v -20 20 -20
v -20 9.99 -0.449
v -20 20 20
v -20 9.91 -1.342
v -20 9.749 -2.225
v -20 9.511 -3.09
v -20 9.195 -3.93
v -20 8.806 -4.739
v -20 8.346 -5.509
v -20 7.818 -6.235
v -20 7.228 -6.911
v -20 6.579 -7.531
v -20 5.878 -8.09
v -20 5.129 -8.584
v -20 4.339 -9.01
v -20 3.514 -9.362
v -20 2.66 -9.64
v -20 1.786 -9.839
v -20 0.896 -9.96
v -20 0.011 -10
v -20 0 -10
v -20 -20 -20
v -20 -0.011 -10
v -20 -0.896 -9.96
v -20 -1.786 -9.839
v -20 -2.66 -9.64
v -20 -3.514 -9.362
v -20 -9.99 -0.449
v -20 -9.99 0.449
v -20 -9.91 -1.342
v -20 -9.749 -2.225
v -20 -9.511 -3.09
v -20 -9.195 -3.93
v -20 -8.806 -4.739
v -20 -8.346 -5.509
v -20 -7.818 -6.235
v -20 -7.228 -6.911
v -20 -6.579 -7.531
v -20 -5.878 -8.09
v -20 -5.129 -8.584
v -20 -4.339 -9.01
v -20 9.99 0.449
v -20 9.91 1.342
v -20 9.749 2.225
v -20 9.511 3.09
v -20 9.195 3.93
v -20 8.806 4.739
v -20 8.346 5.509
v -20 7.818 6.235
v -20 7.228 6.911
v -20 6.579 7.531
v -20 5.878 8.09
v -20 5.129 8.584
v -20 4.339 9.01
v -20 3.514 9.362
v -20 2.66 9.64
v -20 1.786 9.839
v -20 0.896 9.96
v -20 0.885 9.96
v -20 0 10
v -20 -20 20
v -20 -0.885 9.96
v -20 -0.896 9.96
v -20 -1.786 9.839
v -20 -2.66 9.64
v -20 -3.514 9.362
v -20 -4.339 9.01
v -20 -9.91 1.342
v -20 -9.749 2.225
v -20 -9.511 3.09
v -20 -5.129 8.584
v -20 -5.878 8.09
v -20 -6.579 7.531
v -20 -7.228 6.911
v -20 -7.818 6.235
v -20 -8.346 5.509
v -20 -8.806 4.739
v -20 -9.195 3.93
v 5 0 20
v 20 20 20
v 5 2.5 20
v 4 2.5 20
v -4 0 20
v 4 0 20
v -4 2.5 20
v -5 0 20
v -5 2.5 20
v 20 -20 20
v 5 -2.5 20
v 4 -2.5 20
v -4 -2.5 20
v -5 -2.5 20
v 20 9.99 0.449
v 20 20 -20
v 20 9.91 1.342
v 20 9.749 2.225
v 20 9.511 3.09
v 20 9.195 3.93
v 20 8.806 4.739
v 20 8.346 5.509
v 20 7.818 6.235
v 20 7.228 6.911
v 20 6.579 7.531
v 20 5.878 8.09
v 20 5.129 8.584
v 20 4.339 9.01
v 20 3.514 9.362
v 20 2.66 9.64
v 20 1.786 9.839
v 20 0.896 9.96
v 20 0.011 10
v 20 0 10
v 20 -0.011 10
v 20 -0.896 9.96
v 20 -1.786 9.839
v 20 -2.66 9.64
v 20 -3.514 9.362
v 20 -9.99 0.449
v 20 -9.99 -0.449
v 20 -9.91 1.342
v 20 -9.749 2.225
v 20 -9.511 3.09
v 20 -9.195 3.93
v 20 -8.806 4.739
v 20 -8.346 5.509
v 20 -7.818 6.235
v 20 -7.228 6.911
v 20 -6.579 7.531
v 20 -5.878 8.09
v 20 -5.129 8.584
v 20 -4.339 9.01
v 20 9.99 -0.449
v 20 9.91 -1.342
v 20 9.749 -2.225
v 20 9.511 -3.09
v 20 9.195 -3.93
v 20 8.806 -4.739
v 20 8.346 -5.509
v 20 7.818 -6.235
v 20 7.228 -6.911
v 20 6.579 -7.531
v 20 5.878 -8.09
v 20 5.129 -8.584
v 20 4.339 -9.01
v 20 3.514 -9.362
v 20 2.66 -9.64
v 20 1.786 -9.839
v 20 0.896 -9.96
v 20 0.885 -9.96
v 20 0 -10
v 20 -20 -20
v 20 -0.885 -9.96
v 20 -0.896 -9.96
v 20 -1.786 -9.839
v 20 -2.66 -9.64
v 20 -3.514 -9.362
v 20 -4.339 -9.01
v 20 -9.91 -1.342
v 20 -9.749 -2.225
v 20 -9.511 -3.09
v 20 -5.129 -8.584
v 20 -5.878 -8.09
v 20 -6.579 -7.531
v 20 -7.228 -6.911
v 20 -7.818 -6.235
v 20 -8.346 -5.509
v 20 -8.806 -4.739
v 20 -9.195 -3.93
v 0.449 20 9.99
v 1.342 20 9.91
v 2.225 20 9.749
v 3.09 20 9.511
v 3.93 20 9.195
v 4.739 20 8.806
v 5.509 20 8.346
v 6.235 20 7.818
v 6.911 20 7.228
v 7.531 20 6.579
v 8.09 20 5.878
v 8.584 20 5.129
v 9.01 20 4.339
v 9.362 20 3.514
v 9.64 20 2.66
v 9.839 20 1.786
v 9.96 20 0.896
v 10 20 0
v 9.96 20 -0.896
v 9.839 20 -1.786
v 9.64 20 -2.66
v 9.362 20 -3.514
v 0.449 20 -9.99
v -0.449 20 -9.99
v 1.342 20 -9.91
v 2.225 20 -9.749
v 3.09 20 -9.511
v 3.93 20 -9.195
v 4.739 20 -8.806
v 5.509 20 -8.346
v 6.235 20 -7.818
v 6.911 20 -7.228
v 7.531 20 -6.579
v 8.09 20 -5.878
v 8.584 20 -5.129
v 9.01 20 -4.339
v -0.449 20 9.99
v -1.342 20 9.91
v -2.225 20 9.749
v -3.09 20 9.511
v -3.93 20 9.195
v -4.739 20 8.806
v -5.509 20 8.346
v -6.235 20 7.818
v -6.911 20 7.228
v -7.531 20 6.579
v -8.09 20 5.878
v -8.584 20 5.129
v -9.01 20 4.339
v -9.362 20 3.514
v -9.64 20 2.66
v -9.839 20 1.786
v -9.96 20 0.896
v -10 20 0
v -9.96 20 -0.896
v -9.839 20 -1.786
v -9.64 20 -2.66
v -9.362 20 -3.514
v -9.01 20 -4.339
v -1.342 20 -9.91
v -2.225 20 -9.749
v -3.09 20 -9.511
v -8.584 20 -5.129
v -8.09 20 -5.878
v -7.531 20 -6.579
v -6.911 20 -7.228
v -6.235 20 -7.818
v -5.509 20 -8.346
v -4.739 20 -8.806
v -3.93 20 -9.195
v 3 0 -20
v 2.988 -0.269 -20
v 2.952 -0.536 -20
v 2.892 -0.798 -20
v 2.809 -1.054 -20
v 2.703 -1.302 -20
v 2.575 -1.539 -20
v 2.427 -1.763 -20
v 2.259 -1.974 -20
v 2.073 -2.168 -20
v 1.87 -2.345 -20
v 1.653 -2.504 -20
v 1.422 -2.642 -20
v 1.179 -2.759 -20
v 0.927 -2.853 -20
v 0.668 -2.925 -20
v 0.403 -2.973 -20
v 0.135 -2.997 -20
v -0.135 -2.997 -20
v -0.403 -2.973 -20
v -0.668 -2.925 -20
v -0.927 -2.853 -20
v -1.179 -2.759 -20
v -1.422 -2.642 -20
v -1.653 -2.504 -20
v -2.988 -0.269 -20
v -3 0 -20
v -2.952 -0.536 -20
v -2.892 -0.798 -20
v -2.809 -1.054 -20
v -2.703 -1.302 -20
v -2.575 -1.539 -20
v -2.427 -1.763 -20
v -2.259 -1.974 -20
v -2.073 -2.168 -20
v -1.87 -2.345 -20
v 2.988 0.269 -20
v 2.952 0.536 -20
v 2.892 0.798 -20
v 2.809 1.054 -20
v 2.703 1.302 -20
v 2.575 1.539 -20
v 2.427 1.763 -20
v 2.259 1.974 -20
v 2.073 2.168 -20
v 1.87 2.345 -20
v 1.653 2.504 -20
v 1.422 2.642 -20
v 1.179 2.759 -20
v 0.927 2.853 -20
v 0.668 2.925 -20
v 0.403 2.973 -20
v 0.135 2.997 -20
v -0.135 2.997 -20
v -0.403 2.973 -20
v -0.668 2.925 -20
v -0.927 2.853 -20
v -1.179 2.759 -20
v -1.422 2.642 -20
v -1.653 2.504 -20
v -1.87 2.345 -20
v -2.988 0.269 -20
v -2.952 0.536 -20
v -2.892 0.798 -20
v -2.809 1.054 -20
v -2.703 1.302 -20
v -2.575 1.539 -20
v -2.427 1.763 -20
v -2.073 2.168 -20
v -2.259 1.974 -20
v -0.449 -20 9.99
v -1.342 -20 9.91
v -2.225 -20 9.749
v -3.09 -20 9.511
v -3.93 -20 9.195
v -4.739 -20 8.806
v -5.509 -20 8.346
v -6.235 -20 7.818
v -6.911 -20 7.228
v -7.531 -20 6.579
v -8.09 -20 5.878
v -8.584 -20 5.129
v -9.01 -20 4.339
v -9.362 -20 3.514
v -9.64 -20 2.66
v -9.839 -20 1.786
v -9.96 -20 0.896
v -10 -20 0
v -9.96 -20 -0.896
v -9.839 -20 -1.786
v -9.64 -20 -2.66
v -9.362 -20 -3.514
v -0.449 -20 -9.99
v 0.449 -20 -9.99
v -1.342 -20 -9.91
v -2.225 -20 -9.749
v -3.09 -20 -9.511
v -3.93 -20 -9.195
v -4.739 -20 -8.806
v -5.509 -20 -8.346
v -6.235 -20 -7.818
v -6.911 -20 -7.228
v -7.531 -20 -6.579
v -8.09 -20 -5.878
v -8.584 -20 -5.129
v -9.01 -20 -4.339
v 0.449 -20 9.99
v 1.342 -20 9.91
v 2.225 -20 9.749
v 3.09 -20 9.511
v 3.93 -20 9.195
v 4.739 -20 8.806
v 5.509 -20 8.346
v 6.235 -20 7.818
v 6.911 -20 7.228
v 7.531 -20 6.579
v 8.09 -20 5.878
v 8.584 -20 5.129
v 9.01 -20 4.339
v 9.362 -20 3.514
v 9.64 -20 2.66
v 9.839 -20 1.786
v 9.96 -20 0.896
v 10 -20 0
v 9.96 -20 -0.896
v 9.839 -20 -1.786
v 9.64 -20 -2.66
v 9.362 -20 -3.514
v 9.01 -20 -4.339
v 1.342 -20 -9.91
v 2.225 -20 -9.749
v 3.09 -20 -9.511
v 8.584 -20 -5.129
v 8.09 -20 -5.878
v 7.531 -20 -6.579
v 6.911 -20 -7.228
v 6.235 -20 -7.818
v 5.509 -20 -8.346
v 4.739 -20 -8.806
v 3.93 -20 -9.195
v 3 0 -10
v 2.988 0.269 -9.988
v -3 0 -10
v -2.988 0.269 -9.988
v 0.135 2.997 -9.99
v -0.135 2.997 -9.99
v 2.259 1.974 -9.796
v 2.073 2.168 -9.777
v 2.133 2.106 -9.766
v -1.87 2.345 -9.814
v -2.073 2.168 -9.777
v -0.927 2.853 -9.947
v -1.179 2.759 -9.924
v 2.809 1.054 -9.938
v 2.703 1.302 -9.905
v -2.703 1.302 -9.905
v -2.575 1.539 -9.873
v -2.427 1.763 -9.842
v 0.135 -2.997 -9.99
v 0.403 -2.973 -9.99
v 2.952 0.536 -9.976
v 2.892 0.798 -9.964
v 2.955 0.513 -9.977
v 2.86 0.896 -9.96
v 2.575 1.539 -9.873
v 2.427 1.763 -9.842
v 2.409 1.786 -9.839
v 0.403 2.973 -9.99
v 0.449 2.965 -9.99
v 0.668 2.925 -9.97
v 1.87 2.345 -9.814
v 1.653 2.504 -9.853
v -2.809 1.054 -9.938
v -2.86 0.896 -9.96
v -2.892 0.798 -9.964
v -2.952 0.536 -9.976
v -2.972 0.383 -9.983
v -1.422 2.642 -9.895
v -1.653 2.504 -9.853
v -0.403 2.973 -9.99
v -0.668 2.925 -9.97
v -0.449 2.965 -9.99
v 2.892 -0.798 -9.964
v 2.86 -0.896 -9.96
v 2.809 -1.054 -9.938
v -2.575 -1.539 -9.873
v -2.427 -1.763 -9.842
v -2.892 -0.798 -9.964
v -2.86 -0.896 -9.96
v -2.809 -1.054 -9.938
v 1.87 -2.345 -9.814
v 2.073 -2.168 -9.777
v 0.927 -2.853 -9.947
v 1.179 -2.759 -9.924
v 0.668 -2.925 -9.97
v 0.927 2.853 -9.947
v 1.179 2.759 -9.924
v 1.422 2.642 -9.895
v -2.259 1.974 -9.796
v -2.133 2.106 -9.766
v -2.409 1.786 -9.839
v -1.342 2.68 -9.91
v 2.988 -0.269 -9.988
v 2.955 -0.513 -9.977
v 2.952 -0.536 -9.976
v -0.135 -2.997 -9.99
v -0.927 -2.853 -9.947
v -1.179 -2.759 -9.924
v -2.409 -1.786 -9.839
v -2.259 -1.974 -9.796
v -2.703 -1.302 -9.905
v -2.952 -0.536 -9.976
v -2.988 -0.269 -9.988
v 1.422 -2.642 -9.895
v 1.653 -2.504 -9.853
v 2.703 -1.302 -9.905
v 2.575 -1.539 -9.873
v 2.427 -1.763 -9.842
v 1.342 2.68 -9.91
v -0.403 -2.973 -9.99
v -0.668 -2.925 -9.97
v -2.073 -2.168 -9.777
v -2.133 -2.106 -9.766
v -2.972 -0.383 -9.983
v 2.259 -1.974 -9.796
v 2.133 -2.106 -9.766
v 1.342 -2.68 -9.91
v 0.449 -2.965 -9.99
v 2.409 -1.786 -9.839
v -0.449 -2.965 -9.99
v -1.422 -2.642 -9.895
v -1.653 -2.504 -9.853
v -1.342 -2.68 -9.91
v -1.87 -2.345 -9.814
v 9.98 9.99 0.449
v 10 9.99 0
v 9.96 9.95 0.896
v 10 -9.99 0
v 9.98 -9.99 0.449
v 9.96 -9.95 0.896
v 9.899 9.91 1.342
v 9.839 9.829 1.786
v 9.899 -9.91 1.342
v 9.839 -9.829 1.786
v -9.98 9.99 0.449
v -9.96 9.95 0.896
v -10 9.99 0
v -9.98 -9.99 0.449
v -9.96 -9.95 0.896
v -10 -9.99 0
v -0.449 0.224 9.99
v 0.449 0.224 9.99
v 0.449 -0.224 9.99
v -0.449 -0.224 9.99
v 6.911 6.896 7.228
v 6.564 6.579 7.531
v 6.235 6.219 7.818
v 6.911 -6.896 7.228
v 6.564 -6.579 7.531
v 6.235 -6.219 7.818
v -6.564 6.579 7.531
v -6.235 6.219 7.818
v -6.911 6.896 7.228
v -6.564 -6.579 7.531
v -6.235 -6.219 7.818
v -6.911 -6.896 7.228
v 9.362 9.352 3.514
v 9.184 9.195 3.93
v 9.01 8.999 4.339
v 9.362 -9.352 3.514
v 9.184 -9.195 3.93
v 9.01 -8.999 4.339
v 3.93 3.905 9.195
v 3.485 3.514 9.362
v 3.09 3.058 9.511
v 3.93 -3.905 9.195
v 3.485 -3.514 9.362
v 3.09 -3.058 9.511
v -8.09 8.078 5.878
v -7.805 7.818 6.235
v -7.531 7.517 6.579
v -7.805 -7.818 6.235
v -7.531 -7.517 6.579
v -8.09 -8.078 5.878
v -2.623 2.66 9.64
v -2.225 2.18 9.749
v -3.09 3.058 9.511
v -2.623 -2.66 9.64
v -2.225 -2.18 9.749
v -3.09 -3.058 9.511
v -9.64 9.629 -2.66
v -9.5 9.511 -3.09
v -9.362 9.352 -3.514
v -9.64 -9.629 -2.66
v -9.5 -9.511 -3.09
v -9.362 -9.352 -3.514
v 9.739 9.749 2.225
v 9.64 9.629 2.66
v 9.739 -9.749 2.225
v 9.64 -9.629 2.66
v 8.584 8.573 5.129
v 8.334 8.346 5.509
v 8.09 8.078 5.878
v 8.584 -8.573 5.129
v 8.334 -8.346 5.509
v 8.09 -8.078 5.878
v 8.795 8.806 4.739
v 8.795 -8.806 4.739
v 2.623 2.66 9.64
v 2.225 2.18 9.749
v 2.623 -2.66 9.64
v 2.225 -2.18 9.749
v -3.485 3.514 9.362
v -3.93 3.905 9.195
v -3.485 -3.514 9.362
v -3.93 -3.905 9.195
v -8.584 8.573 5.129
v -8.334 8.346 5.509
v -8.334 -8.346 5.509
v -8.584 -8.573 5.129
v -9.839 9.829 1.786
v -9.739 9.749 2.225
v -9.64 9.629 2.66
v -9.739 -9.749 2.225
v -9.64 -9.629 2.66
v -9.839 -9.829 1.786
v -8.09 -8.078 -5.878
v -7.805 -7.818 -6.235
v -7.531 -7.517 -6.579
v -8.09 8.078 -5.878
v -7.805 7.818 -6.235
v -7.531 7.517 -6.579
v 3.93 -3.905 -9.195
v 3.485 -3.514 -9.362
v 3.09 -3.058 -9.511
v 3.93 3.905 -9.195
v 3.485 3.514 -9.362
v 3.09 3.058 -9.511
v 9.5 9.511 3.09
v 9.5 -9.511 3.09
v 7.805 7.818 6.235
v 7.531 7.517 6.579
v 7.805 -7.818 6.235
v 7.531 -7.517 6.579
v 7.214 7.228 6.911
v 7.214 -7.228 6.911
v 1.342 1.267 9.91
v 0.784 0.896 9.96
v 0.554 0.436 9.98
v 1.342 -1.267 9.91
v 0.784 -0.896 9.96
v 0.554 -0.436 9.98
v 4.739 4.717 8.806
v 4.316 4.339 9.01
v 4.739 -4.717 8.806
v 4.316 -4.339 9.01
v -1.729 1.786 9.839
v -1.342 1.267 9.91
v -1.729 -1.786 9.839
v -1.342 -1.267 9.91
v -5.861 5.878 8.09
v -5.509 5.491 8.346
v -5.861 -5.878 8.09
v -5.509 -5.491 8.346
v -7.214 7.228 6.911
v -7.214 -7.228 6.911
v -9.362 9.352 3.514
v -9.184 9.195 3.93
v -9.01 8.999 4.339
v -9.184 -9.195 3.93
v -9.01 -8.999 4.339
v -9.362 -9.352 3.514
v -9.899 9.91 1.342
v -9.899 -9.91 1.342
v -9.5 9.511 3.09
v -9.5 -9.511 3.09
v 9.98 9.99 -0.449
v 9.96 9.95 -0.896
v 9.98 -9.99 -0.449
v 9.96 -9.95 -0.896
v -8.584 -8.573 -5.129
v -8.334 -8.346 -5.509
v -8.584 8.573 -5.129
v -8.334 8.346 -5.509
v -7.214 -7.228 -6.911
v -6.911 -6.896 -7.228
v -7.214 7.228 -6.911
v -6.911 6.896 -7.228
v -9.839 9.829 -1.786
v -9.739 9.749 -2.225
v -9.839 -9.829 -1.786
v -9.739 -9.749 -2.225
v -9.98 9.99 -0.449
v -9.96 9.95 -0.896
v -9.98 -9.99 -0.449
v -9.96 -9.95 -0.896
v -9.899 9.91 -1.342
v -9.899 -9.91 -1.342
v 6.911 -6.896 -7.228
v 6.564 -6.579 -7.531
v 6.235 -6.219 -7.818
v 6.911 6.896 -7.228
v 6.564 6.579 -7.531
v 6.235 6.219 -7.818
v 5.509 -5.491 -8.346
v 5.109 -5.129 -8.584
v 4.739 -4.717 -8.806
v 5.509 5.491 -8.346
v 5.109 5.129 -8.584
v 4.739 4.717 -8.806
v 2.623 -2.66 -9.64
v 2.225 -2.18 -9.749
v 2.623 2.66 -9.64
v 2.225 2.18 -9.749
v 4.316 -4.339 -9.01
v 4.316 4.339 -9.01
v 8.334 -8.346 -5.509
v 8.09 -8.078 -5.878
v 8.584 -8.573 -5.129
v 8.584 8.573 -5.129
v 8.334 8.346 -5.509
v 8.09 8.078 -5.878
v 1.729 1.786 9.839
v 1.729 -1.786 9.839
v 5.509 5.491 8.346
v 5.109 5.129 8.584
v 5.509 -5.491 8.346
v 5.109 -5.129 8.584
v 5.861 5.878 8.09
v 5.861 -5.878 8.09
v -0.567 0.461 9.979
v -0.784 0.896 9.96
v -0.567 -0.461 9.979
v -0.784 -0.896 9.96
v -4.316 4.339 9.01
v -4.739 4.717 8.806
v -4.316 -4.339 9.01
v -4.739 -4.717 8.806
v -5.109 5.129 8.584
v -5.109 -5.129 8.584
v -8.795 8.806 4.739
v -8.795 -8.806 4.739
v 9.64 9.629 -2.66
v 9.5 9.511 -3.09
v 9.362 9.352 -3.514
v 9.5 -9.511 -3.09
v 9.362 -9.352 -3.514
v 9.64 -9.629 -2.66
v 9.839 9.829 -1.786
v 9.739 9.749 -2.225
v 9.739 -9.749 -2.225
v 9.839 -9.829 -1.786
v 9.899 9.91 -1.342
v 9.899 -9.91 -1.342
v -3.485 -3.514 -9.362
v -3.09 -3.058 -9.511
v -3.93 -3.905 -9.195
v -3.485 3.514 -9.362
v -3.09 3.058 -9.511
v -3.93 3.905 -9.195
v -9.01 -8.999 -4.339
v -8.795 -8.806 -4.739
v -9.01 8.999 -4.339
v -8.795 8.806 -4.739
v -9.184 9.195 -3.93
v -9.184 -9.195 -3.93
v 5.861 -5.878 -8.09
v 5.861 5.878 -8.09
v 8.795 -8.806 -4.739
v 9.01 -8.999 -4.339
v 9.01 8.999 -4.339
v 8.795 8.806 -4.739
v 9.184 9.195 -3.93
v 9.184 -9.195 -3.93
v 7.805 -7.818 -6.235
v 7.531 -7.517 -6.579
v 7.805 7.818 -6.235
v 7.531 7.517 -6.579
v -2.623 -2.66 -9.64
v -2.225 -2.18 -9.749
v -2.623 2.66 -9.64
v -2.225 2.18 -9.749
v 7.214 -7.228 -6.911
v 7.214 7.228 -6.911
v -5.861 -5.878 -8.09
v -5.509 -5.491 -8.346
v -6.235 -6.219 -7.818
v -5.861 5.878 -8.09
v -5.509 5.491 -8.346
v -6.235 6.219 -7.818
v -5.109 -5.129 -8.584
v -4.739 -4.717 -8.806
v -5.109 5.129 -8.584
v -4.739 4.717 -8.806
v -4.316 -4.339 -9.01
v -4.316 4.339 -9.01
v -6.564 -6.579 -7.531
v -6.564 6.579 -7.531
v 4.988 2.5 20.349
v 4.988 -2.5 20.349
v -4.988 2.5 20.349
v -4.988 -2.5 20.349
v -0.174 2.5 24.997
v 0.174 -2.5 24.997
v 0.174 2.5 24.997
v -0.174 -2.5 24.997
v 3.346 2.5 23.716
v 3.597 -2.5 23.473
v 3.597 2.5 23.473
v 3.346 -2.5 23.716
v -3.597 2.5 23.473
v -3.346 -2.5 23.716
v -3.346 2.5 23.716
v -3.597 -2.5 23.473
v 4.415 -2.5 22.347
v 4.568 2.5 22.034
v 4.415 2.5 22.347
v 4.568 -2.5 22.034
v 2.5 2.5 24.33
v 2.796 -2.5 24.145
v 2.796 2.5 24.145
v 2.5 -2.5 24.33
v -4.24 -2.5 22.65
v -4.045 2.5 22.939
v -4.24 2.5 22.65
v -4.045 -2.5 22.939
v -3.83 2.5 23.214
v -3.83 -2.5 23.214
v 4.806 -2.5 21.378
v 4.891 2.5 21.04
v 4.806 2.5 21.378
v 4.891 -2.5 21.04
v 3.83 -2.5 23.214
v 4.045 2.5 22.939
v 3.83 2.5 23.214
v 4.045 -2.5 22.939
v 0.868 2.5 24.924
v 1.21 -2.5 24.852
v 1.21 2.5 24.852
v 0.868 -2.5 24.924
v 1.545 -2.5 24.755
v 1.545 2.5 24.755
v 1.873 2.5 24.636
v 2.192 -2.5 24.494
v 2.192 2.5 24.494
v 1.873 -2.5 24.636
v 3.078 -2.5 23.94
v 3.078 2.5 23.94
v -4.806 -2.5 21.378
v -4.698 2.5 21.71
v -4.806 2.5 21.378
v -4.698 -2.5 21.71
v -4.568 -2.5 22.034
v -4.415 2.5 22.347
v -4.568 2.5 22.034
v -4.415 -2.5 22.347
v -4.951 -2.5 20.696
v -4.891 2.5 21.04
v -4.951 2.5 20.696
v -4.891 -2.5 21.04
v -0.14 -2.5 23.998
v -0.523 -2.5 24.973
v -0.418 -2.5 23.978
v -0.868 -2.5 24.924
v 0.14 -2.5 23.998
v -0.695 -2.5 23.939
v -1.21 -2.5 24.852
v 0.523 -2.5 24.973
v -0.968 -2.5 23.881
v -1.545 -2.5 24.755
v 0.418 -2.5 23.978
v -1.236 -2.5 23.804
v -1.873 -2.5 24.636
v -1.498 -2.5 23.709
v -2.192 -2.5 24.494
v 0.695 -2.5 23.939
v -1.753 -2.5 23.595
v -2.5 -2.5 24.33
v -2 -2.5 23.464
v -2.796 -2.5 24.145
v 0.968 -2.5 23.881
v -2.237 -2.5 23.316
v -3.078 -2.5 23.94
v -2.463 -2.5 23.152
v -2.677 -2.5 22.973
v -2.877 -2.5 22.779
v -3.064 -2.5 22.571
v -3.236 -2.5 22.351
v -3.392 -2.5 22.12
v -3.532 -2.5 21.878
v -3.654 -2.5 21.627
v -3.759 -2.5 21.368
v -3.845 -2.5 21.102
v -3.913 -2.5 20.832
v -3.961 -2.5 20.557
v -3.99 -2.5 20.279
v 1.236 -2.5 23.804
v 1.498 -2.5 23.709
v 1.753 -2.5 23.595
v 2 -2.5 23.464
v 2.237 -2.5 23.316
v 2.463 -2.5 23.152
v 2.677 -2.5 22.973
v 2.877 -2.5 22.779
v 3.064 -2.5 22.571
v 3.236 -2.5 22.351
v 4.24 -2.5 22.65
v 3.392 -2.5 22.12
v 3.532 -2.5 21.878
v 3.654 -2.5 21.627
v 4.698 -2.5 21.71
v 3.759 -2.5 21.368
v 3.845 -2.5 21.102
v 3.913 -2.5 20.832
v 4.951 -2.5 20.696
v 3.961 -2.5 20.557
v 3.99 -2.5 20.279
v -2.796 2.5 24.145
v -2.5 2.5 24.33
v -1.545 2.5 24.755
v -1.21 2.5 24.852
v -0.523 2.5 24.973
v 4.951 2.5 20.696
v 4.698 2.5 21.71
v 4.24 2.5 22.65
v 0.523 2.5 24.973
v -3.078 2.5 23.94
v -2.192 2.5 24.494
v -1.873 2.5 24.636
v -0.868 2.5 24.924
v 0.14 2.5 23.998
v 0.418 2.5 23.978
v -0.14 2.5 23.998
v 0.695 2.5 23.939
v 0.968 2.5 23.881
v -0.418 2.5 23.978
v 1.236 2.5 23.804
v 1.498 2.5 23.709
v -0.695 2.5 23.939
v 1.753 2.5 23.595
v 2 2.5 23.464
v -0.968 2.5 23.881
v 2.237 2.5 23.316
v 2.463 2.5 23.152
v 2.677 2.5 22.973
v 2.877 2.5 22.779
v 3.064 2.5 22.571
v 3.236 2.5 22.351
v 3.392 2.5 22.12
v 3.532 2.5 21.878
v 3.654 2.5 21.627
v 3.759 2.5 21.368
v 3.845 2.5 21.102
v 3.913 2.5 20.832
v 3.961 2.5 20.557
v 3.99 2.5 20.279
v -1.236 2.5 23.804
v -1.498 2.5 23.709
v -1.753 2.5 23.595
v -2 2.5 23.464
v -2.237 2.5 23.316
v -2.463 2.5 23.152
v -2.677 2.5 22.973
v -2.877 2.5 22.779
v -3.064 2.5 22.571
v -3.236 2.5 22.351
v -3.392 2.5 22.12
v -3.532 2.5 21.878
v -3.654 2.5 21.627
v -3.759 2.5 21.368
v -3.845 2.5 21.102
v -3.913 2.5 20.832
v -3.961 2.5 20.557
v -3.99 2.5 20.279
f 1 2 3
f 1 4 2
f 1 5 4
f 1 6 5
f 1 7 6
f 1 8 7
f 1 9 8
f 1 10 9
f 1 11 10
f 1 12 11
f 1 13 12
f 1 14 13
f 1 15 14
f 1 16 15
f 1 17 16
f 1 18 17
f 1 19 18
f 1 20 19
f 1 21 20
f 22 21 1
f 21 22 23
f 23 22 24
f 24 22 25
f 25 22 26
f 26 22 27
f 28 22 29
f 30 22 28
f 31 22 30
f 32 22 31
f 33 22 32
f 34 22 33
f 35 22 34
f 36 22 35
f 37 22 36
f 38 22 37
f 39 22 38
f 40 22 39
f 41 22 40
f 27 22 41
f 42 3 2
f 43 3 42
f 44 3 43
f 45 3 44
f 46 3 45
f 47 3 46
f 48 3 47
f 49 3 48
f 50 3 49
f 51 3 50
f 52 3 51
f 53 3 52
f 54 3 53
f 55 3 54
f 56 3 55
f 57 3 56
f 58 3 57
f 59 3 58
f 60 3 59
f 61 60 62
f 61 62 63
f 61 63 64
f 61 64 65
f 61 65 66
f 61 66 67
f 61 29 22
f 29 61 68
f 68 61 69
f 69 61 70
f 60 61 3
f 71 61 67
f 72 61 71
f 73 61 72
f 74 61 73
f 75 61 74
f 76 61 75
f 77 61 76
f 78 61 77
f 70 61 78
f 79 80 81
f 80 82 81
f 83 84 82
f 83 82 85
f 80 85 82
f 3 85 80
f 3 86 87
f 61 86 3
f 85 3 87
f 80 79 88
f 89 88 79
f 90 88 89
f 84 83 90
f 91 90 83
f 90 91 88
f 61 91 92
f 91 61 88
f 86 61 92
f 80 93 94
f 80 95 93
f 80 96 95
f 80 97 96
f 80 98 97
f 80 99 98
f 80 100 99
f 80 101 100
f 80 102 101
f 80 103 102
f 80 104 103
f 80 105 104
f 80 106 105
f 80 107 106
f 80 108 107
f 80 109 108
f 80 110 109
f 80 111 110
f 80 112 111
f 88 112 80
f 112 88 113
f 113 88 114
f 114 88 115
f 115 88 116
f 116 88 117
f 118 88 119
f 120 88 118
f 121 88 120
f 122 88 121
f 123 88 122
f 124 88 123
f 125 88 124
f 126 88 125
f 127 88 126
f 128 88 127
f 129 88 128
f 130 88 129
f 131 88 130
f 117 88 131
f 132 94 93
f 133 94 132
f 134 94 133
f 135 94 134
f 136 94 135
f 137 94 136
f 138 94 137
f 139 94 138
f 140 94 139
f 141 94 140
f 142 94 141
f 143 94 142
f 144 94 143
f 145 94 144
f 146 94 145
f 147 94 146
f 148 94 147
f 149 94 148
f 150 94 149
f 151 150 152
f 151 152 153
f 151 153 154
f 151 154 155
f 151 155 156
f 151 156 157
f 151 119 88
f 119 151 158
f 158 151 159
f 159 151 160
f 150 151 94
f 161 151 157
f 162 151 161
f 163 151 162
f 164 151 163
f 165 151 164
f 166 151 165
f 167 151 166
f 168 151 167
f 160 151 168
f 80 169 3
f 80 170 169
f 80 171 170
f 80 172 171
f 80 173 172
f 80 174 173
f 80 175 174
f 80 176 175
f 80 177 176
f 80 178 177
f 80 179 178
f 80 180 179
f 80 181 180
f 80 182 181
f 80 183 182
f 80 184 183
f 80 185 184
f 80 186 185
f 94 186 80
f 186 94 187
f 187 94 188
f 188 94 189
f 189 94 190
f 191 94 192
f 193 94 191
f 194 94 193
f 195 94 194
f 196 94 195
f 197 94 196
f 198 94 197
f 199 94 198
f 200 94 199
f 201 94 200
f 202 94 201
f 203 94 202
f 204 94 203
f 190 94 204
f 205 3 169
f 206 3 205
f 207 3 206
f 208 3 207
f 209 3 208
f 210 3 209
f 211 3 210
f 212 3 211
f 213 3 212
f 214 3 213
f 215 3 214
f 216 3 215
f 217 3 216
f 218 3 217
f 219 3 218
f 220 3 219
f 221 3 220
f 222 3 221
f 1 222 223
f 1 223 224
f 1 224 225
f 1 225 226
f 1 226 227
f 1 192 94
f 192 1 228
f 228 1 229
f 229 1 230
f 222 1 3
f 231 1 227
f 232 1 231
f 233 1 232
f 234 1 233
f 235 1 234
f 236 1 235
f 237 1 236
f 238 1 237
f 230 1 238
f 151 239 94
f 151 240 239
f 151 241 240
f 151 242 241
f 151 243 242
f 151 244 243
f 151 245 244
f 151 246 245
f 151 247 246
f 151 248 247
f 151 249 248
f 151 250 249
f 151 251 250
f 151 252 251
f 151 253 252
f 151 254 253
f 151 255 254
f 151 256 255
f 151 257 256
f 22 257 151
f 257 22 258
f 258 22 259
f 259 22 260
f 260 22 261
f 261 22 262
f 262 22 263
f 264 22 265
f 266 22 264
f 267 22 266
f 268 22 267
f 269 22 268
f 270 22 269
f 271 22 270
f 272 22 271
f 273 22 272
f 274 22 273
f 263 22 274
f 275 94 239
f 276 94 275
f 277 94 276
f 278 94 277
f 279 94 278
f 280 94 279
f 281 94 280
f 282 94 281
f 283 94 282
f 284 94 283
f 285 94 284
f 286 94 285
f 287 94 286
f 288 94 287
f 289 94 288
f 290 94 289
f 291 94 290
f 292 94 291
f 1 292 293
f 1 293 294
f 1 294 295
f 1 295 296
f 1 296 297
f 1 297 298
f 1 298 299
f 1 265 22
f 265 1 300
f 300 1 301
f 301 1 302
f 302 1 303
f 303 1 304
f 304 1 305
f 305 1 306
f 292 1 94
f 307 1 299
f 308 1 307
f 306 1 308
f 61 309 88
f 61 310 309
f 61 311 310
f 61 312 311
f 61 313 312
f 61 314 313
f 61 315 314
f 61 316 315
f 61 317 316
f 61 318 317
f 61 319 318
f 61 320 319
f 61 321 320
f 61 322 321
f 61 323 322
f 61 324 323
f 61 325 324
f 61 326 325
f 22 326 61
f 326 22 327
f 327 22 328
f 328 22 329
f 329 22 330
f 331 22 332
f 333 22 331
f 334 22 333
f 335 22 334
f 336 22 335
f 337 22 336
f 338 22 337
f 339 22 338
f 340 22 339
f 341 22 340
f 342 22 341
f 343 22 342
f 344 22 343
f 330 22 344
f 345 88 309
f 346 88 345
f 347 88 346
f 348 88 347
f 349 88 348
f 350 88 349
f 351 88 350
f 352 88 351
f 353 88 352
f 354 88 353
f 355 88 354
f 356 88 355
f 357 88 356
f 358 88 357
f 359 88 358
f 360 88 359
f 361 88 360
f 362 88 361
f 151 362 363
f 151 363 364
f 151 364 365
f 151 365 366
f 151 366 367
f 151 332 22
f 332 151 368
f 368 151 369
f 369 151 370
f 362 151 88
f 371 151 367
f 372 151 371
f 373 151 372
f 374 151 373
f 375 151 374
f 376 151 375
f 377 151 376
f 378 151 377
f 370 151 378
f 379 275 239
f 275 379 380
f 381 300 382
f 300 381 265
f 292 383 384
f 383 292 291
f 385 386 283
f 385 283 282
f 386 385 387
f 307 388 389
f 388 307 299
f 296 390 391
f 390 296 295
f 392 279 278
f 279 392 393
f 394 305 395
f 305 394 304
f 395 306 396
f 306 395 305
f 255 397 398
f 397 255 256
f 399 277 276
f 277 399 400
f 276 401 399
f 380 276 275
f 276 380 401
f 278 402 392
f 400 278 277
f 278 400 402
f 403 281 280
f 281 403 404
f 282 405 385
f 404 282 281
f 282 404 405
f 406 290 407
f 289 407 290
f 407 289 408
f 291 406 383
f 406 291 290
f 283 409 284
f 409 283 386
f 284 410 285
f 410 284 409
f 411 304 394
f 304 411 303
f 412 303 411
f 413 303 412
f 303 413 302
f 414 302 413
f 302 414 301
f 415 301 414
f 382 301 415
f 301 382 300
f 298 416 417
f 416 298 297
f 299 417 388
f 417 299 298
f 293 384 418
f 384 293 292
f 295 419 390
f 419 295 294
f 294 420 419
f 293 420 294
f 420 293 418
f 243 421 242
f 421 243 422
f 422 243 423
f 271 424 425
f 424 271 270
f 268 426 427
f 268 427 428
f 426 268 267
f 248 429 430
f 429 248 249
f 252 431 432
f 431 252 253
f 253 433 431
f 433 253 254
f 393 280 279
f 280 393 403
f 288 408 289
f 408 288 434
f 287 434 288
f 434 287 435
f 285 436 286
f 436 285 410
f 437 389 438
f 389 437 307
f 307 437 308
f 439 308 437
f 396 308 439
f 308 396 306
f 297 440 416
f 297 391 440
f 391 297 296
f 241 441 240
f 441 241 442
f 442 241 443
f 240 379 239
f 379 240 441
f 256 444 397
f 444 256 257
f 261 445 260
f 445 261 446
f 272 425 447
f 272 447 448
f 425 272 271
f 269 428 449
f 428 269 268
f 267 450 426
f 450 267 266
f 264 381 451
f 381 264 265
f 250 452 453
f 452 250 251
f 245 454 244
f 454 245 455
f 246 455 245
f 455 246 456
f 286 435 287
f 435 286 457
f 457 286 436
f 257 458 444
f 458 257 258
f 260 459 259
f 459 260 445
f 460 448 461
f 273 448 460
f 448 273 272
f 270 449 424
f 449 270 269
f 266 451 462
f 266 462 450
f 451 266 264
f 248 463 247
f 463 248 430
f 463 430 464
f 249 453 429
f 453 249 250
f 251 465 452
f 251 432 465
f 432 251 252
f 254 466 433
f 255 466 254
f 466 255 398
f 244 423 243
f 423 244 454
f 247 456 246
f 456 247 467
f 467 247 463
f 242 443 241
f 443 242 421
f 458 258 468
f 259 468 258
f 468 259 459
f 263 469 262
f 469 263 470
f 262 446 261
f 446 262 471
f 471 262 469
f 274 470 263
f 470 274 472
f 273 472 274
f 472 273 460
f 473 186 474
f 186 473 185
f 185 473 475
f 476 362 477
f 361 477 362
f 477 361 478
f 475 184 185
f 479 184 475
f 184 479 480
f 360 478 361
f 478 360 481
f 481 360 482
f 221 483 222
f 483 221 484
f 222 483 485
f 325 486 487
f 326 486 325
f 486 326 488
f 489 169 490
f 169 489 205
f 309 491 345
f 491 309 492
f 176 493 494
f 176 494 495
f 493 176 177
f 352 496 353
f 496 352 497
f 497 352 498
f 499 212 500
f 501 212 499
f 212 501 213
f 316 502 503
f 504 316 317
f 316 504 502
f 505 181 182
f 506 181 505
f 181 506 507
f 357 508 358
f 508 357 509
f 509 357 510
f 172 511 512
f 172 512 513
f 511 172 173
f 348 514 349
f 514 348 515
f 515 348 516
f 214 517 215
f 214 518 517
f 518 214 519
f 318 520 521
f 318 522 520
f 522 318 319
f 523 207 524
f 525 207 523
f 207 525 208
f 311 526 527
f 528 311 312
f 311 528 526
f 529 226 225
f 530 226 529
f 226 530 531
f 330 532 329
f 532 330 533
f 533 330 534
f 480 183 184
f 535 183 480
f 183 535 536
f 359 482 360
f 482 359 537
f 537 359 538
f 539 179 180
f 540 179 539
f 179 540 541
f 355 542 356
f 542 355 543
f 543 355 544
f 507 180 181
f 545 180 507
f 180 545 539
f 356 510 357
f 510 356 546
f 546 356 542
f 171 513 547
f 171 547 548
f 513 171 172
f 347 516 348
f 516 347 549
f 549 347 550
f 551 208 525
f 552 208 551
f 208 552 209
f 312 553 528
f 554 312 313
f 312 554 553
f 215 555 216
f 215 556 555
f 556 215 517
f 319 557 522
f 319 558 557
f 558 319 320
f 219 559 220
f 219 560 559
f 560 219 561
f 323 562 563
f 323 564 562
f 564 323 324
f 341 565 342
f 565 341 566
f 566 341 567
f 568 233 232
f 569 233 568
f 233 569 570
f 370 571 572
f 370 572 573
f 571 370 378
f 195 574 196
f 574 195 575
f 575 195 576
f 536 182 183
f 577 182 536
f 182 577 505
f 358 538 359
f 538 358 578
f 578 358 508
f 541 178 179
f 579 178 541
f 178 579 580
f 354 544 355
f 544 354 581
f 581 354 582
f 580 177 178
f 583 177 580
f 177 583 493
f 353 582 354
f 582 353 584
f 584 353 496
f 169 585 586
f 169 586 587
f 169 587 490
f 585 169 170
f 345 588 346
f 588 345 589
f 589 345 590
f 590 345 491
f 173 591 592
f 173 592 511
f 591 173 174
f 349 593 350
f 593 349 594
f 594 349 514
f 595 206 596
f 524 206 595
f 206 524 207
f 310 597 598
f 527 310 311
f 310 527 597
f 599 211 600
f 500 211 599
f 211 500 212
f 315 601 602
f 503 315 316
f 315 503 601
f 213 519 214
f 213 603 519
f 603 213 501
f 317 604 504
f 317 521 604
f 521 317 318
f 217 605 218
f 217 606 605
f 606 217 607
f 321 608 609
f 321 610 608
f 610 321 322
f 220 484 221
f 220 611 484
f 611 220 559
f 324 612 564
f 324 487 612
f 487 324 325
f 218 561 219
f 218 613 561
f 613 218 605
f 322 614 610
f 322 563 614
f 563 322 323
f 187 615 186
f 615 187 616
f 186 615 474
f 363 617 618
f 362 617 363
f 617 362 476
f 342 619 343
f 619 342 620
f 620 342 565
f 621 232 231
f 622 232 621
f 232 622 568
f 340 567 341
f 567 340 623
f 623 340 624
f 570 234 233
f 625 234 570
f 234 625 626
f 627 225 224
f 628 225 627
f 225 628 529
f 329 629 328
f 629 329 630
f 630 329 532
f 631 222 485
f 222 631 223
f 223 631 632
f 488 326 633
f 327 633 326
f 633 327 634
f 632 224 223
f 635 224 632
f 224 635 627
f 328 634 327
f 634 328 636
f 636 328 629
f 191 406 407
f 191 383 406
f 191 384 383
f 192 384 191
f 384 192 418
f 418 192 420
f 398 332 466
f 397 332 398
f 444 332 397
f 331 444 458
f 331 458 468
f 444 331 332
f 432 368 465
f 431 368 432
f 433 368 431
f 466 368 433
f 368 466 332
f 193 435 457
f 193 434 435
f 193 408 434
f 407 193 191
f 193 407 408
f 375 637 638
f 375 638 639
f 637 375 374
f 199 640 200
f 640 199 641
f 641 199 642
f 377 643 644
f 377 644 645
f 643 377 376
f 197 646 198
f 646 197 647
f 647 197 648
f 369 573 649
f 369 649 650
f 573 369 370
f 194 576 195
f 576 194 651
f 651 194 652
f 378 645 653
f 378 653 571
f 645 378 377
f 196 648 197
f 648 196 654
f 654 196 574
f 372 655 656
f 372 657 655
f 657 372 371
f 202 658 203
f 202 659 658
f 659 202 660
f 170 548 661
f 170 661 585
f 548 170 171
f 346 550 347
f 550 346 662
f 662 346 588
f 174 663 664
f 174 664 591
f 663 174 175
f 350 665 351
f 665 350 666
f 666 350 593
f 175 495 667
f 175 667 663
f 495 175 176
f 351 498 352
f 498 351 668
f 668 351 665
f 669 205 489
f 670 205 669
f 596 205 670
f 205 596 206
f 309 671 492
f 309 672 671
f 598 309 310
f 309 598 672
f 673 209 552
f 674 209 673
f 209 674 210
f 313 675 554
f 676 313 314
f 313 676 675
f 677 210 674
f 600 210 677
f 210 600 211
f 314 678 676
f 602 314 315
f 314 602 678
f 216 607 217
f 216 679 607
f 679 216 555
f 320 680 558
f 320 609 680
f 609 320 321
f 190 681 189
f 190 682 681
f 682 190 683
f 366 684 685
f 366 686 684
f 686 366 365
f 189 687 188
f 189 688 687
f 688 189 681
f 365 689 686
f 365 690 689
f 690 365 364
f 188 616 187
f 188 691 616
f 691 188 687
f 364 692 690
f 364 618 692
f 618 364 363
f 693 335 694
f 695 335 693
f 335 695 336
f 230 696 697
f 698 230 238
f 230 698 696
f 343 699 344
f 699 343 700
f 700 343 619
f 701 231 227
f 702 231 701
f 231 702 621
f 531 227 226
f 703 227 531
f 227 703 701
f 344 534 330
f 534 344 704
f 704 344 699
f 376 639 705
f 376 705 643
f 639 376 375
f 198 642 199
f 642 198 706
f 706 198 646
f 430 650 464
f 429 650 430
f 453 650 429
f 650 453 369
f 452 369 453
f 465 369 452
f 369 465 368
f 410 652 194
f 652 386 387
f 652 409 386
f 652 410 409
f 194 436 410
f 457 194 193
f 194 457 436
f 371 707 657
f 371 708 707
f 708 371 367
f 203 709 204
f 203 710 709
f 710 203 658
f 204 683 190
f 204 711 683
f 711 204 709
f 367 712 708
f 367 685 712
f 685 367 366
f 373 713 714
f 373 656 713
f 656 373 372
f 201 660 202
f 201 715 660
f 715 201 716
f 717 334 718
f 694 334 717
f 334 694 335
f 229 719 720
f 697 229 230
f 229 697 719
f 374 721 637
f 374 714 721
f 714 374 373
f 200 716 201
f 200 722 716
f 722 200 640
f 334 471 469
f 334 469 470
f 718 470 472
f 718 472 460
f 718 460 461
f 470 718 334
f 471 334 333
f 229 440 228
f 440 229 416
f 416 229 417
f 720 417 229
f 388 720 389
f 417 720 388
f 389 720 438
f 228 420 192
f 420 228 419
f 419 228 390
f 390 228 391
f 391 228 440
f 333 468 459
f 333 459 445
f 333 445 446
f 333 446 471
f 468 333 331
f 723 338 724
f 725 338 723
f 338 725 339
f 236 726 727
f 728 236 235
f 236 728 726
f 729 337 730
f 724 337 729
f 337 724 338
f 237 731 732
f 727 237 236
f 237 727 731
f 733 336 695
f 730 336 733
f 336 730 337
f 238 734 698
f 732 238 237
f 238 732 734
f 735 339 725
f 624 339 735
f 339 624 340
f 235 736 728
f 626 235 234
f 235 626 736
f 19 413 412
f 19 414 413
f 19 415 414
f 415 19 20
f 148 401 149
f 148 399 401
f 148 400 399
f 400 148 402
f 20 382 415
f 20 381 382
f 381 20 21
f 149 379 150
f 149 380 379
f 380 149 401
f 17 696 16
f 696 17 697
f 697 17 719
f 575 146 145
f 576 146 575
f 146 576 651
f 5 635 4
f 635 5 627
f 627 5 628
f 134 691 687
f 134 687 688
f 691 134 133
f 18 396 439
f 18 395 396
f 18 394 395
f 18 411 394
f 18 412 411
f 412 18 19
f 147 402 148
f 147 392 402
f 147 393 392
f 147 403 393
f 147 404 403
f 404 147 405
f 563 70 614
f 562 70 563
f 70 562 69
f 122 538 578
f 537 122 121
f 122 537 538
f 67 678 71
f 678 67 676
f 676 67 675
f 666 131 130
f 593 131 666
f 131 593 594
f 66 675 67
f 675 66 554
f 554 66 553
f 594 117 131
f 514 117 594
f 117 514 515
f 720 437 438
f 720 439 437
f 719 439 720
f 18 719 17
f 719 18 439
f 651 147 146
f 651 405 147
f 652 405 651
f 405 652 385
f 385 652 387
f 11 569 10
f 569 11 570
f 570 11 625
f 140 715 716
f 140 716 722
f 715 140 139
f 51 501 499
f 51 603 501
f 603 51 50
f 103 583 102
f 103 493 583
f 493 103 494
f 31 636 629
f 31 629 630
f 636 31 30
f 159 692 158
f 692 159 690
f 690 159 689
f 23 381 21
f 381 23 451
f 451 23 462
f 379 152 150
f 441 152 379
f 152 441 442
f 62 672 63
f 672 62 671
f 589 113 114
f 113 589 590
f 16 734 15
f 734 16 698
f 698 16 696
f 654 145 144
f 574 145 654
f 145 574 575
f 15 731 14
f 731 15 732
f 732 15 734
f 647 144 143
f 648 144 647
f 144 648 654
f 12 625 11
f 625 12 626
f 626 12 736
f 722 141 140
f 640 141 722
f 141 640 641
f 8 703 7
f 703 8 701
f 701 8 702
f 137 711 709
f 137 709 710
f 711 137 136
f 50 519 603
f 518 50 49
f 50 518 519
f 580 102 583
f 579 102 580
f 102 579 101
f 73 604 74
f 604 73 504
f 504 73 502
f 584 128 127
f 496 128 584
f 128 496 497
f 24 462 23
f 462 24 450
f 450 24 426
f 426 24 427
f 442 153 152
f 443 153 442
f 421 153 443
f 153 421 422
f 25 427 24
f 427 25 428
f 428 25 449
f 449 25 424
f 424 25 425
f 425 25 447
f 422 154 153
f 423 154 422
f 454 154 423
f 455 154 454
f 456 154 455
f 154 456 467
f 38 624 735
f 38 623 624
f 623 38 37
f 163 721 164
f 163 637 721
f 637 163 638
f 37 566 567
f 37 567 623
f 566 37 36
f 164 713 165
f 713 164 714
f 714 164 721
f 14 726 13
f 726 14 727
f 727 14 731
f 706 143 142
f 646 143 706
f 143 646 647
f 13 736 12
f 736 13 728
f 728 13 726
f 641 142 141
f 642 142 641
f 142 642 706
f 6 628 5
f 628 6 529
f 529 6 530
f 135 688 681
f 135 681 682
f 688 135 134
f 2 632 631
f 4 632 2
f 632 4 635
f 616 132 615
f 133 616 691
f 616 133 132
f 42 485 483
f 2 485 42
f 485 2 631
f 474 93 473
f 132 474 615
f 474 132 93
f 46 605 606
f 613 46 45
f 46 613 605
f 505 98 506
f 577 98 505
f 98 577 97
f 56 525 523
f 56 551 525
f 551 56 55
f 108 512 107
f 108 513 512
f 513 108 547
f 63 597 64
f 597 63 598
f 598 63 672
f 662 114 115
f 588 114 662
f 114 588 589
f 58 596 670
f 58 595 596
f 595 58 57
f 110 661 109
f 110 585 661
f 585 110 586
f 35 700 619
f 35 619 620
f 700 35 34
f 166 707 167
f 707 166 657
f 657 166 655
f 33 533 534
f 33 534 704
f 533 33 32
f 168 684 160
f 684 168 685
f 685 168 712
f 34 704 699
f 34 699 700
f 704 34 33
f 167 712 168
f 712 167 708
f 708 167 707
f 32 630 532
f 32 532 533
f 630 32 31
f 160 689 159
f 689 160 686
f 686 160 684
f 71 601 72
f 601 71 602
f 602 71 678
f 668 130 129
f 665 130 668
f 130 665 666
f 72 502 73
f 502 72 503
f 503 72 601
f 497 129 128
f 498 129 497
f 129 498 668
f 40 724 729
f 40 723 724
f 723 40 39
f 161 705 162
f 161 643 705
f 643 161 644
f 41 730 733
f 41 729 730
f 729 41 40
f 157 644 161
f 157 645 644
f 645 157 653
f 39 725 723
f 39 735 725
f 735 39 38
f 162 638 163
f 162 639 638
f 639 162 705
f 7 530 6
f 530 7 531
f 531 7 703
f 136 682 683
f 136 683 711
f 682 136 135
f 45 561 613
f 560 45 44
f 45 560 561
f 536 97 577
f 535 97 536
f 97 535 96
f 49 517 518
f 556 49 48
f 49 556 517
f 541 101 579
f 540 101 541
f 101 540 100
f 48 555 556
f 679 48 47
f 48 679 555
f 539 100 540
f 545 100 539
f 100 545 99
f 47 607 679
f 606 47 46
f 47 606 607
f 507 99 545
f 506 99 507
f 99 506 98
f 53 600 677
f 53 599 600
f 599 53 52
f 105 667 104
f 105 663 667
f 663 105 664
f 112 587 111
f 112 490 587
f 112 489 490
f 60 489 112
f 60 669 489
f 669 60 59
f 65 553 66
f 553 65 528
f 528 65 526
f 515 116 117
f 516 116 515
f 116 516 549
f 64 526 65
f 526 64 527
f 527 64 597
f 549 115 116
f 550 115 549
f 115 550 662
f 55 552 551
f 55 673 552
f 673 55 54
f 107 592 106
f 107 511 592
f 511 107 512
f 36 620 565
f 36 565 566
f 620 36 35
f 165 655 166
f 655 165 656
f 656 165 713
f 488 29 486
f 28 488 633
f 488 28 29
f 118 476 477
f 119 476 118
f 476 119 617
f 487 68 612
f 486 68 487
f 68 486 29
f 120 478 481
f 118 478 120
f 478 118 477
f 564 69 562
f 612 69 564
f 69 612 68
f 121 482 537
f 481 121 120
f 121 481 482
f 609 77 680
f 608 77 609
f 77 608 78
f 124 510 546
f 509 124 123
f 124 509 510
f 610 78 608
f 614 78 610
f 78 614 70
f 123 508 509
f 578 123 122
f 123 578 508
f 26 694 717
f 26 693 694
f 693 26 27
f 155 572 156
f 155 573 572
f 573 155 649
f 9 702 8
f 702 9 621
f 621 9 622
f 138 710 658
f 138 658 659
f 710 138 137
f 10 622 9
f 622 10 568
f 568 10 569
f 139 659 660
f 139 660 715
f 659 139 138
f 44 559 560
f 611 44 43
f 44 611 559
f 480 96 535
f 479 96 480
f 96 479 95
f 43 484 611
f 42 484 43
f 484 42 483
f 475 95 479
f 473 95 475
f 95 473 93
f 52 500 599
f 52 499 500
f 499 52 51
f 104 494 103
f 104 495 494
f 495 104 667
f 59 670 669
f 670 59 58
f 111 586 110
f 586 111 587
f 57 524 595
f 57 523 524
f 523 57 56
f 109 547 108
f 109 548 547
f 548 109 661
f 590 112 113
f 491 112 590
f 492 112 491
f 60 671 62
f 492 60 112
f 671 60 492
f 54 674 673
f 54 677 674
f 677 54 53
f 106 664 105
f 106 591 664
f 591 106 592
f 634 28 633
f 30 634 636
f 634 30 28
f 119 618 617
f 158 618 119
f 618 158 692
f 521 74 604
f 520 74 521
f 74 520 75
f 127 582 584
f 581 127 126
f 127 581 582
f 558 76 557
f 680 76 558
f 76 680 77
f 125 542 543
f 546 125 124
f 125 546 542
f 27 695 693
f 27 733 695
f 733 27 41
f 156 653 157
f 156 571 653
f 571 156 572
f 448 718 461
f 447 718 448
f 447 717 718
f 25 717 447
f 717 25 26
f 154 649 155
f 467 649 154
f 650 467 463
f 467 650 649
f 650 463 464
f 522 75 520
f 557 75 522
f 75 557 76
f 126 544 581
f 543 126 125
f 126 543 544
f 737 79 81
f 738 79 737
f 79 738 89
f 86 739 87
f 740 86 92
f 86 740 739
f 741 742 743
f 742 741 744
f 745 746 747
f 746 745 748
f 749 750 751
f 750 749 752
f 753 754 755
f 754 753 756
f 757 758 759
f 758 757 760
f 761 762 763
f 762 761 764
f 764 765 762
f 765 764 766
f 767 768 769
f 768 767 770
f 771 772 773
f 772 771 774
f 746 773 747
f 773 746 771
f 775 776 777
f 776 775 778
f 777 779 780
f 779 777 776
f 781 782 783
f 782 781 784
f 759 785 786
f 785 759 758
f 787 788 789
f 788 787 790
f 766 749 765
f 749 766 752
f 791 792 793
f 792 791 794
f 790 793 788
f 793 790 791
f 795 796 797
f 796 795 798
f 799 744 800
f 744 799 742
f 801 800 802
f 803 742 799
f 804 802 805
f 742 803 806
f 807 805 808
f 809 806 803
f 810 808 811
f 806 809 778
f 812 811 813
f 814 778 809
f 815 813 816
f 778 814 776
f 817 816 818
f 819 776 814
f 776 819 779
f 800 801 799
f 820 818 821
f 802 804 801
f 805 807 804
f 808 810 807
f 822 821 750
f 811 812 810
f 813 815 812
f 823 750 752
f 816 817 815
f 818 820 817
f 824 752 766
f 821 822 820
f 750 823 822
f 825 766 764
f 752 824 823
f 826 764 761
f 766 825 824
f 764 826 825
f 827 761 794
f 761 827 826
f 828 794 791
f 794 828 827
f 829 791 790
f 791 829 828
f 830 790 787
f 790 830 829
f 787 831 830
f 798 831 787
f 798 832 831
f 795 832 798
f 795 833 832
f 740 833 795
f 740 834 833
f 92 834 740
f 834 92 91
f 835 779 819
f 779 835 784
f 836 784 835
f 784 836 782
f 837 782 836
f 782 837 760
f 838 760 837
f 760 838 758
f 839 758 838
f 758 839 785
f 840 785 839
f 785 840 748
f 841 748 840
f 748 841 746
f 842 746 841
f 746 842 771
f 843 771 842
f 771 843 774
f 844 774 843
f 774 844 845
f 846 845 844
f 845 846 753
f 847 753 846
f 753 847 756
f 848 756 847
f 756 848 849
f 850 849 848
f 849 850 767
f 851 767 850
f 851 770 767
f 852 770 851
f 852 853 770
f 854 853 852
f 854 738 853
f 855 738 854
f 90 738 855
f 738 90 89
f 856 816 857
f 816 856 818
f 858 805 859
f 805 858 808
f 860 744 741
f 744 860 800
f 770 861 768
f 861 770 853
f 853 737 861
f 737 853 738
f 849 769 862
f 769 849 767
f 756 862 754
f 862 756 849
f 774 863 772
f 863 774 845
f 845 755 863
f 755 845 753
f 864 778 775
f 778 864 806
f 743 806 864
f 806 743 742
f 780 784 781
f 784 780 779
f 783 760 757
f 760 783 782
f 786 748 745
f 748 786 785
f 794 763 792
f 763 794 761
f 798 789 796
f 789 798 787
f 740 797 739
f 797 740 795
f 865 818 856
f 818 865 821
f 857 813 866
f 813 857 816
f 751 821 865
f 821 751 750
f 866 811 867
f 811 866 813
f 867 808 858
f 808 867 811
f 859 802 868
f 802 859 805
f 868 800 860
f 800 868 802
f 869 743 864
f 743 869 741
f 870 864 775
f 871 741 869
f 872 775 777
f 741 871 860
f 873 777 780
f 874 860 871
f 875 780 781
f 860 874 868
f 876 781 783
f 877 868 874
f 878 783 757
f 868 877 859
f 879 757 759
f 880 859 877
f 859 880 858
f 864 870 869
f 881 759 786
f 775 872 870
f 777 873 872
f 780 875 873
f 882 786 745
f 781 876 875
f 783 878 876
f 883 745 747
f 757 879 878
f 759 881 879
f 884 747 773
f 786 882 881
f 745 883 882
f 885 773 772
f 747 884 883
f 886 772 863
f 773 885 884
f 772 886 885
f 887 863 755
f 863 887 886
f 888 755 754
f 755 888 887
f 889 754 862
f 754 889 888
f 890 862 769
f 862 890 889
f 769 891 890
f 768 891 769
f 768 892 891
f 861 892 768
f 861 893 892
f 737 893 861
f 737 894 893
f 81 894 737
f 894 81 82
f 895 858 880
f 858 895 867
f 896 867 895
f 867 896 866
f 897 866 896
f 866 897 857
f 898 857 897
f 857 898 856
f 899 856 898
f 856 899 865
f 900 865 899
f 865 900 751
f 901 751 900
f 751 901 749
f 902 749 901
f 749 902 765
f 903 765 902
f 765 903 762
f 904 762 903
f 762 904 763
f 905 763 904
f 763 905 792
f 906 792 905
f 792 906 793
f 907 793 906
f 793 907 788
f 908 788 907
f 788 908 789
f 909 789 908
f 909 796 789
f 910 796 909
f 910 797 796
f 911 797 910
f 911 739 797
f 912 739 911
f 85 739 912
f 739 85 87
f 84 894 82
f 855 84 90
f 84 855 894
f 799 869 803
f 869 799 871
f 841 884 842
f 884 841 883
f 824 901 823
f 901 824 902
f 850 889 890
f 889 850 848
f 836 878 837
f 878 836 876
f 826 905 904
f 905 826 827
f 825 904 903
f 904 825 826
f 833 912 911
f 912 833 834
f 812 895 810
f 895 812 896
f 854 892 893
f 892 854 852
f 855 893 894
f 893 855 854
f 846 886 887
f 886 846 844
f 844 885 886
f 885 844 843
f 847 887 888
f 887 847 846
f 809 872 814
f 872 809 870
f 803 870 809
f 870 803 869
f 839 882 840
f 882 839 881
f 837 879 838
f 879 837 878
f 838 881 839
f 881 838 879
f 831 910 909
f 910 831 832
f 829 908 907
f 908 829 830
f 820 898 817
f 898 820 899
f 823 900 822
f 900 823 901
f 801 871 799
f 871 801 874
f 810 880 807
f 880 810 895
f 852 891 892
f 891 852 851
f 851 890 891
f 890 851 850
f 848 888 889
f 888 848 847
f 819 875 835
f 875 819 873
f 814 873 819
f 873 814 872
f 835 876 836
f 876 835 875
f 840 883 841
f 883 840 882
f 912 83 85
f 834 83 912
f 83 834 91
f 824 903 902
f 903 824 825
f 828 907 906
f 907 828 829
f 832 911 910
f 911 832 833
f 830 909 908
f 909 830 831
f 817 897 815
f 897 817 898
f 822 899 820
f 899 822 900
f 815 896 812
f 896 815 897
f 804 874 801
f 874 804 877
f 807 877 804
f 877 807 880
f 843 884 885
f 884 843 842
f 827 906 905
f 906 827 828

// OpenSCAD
/*scale(6) {
    difference() {
        cube(4, center=true);
        translate([0, 0, -2])
        stdCylinder(d=1);
        rotate([90])
        stdCylinder();
        rotate([0,90])
        stdCylinder();
    }
    translate([0,0,2]) holder(0.5, 1, 0.2);
}*/

cubeOrnament(40);

module cubeOrnament(width=20, ledDiameter=6) {
    difference() {
        // base cube
        cube(width, center=true);
        
        // led hole
        translate([0, 0, -(width/2)])
        stdCylinder(h=width+1, d=ledDiameter);
        
        rotate([90])
        stdCylinder(h=width+1, d=width/2);
        
        rotate([0,90])
        stdCylinder(h=width+1, d=width/2);
    }
    
    // holder on top
    translate([0,0,width/2])
    holder(width/8, width/4, width/20);
}

module stdCylinder(h=5, d=2) {
    cylinder(h, d=d, $fn=70,center=true);
}

module holder(l=1, d=1, w=0.25) {
    // l=length, d=diameter, w=width
    // width is width of solid holder part
    facets = 90;
    rotate([90]) difference() {
        cylinder(l, d=d,
        $fn=facets, center=true);
        cylinder(l+0.25, d=d-w, 
        $fn=facets, center=true);
    }
}
